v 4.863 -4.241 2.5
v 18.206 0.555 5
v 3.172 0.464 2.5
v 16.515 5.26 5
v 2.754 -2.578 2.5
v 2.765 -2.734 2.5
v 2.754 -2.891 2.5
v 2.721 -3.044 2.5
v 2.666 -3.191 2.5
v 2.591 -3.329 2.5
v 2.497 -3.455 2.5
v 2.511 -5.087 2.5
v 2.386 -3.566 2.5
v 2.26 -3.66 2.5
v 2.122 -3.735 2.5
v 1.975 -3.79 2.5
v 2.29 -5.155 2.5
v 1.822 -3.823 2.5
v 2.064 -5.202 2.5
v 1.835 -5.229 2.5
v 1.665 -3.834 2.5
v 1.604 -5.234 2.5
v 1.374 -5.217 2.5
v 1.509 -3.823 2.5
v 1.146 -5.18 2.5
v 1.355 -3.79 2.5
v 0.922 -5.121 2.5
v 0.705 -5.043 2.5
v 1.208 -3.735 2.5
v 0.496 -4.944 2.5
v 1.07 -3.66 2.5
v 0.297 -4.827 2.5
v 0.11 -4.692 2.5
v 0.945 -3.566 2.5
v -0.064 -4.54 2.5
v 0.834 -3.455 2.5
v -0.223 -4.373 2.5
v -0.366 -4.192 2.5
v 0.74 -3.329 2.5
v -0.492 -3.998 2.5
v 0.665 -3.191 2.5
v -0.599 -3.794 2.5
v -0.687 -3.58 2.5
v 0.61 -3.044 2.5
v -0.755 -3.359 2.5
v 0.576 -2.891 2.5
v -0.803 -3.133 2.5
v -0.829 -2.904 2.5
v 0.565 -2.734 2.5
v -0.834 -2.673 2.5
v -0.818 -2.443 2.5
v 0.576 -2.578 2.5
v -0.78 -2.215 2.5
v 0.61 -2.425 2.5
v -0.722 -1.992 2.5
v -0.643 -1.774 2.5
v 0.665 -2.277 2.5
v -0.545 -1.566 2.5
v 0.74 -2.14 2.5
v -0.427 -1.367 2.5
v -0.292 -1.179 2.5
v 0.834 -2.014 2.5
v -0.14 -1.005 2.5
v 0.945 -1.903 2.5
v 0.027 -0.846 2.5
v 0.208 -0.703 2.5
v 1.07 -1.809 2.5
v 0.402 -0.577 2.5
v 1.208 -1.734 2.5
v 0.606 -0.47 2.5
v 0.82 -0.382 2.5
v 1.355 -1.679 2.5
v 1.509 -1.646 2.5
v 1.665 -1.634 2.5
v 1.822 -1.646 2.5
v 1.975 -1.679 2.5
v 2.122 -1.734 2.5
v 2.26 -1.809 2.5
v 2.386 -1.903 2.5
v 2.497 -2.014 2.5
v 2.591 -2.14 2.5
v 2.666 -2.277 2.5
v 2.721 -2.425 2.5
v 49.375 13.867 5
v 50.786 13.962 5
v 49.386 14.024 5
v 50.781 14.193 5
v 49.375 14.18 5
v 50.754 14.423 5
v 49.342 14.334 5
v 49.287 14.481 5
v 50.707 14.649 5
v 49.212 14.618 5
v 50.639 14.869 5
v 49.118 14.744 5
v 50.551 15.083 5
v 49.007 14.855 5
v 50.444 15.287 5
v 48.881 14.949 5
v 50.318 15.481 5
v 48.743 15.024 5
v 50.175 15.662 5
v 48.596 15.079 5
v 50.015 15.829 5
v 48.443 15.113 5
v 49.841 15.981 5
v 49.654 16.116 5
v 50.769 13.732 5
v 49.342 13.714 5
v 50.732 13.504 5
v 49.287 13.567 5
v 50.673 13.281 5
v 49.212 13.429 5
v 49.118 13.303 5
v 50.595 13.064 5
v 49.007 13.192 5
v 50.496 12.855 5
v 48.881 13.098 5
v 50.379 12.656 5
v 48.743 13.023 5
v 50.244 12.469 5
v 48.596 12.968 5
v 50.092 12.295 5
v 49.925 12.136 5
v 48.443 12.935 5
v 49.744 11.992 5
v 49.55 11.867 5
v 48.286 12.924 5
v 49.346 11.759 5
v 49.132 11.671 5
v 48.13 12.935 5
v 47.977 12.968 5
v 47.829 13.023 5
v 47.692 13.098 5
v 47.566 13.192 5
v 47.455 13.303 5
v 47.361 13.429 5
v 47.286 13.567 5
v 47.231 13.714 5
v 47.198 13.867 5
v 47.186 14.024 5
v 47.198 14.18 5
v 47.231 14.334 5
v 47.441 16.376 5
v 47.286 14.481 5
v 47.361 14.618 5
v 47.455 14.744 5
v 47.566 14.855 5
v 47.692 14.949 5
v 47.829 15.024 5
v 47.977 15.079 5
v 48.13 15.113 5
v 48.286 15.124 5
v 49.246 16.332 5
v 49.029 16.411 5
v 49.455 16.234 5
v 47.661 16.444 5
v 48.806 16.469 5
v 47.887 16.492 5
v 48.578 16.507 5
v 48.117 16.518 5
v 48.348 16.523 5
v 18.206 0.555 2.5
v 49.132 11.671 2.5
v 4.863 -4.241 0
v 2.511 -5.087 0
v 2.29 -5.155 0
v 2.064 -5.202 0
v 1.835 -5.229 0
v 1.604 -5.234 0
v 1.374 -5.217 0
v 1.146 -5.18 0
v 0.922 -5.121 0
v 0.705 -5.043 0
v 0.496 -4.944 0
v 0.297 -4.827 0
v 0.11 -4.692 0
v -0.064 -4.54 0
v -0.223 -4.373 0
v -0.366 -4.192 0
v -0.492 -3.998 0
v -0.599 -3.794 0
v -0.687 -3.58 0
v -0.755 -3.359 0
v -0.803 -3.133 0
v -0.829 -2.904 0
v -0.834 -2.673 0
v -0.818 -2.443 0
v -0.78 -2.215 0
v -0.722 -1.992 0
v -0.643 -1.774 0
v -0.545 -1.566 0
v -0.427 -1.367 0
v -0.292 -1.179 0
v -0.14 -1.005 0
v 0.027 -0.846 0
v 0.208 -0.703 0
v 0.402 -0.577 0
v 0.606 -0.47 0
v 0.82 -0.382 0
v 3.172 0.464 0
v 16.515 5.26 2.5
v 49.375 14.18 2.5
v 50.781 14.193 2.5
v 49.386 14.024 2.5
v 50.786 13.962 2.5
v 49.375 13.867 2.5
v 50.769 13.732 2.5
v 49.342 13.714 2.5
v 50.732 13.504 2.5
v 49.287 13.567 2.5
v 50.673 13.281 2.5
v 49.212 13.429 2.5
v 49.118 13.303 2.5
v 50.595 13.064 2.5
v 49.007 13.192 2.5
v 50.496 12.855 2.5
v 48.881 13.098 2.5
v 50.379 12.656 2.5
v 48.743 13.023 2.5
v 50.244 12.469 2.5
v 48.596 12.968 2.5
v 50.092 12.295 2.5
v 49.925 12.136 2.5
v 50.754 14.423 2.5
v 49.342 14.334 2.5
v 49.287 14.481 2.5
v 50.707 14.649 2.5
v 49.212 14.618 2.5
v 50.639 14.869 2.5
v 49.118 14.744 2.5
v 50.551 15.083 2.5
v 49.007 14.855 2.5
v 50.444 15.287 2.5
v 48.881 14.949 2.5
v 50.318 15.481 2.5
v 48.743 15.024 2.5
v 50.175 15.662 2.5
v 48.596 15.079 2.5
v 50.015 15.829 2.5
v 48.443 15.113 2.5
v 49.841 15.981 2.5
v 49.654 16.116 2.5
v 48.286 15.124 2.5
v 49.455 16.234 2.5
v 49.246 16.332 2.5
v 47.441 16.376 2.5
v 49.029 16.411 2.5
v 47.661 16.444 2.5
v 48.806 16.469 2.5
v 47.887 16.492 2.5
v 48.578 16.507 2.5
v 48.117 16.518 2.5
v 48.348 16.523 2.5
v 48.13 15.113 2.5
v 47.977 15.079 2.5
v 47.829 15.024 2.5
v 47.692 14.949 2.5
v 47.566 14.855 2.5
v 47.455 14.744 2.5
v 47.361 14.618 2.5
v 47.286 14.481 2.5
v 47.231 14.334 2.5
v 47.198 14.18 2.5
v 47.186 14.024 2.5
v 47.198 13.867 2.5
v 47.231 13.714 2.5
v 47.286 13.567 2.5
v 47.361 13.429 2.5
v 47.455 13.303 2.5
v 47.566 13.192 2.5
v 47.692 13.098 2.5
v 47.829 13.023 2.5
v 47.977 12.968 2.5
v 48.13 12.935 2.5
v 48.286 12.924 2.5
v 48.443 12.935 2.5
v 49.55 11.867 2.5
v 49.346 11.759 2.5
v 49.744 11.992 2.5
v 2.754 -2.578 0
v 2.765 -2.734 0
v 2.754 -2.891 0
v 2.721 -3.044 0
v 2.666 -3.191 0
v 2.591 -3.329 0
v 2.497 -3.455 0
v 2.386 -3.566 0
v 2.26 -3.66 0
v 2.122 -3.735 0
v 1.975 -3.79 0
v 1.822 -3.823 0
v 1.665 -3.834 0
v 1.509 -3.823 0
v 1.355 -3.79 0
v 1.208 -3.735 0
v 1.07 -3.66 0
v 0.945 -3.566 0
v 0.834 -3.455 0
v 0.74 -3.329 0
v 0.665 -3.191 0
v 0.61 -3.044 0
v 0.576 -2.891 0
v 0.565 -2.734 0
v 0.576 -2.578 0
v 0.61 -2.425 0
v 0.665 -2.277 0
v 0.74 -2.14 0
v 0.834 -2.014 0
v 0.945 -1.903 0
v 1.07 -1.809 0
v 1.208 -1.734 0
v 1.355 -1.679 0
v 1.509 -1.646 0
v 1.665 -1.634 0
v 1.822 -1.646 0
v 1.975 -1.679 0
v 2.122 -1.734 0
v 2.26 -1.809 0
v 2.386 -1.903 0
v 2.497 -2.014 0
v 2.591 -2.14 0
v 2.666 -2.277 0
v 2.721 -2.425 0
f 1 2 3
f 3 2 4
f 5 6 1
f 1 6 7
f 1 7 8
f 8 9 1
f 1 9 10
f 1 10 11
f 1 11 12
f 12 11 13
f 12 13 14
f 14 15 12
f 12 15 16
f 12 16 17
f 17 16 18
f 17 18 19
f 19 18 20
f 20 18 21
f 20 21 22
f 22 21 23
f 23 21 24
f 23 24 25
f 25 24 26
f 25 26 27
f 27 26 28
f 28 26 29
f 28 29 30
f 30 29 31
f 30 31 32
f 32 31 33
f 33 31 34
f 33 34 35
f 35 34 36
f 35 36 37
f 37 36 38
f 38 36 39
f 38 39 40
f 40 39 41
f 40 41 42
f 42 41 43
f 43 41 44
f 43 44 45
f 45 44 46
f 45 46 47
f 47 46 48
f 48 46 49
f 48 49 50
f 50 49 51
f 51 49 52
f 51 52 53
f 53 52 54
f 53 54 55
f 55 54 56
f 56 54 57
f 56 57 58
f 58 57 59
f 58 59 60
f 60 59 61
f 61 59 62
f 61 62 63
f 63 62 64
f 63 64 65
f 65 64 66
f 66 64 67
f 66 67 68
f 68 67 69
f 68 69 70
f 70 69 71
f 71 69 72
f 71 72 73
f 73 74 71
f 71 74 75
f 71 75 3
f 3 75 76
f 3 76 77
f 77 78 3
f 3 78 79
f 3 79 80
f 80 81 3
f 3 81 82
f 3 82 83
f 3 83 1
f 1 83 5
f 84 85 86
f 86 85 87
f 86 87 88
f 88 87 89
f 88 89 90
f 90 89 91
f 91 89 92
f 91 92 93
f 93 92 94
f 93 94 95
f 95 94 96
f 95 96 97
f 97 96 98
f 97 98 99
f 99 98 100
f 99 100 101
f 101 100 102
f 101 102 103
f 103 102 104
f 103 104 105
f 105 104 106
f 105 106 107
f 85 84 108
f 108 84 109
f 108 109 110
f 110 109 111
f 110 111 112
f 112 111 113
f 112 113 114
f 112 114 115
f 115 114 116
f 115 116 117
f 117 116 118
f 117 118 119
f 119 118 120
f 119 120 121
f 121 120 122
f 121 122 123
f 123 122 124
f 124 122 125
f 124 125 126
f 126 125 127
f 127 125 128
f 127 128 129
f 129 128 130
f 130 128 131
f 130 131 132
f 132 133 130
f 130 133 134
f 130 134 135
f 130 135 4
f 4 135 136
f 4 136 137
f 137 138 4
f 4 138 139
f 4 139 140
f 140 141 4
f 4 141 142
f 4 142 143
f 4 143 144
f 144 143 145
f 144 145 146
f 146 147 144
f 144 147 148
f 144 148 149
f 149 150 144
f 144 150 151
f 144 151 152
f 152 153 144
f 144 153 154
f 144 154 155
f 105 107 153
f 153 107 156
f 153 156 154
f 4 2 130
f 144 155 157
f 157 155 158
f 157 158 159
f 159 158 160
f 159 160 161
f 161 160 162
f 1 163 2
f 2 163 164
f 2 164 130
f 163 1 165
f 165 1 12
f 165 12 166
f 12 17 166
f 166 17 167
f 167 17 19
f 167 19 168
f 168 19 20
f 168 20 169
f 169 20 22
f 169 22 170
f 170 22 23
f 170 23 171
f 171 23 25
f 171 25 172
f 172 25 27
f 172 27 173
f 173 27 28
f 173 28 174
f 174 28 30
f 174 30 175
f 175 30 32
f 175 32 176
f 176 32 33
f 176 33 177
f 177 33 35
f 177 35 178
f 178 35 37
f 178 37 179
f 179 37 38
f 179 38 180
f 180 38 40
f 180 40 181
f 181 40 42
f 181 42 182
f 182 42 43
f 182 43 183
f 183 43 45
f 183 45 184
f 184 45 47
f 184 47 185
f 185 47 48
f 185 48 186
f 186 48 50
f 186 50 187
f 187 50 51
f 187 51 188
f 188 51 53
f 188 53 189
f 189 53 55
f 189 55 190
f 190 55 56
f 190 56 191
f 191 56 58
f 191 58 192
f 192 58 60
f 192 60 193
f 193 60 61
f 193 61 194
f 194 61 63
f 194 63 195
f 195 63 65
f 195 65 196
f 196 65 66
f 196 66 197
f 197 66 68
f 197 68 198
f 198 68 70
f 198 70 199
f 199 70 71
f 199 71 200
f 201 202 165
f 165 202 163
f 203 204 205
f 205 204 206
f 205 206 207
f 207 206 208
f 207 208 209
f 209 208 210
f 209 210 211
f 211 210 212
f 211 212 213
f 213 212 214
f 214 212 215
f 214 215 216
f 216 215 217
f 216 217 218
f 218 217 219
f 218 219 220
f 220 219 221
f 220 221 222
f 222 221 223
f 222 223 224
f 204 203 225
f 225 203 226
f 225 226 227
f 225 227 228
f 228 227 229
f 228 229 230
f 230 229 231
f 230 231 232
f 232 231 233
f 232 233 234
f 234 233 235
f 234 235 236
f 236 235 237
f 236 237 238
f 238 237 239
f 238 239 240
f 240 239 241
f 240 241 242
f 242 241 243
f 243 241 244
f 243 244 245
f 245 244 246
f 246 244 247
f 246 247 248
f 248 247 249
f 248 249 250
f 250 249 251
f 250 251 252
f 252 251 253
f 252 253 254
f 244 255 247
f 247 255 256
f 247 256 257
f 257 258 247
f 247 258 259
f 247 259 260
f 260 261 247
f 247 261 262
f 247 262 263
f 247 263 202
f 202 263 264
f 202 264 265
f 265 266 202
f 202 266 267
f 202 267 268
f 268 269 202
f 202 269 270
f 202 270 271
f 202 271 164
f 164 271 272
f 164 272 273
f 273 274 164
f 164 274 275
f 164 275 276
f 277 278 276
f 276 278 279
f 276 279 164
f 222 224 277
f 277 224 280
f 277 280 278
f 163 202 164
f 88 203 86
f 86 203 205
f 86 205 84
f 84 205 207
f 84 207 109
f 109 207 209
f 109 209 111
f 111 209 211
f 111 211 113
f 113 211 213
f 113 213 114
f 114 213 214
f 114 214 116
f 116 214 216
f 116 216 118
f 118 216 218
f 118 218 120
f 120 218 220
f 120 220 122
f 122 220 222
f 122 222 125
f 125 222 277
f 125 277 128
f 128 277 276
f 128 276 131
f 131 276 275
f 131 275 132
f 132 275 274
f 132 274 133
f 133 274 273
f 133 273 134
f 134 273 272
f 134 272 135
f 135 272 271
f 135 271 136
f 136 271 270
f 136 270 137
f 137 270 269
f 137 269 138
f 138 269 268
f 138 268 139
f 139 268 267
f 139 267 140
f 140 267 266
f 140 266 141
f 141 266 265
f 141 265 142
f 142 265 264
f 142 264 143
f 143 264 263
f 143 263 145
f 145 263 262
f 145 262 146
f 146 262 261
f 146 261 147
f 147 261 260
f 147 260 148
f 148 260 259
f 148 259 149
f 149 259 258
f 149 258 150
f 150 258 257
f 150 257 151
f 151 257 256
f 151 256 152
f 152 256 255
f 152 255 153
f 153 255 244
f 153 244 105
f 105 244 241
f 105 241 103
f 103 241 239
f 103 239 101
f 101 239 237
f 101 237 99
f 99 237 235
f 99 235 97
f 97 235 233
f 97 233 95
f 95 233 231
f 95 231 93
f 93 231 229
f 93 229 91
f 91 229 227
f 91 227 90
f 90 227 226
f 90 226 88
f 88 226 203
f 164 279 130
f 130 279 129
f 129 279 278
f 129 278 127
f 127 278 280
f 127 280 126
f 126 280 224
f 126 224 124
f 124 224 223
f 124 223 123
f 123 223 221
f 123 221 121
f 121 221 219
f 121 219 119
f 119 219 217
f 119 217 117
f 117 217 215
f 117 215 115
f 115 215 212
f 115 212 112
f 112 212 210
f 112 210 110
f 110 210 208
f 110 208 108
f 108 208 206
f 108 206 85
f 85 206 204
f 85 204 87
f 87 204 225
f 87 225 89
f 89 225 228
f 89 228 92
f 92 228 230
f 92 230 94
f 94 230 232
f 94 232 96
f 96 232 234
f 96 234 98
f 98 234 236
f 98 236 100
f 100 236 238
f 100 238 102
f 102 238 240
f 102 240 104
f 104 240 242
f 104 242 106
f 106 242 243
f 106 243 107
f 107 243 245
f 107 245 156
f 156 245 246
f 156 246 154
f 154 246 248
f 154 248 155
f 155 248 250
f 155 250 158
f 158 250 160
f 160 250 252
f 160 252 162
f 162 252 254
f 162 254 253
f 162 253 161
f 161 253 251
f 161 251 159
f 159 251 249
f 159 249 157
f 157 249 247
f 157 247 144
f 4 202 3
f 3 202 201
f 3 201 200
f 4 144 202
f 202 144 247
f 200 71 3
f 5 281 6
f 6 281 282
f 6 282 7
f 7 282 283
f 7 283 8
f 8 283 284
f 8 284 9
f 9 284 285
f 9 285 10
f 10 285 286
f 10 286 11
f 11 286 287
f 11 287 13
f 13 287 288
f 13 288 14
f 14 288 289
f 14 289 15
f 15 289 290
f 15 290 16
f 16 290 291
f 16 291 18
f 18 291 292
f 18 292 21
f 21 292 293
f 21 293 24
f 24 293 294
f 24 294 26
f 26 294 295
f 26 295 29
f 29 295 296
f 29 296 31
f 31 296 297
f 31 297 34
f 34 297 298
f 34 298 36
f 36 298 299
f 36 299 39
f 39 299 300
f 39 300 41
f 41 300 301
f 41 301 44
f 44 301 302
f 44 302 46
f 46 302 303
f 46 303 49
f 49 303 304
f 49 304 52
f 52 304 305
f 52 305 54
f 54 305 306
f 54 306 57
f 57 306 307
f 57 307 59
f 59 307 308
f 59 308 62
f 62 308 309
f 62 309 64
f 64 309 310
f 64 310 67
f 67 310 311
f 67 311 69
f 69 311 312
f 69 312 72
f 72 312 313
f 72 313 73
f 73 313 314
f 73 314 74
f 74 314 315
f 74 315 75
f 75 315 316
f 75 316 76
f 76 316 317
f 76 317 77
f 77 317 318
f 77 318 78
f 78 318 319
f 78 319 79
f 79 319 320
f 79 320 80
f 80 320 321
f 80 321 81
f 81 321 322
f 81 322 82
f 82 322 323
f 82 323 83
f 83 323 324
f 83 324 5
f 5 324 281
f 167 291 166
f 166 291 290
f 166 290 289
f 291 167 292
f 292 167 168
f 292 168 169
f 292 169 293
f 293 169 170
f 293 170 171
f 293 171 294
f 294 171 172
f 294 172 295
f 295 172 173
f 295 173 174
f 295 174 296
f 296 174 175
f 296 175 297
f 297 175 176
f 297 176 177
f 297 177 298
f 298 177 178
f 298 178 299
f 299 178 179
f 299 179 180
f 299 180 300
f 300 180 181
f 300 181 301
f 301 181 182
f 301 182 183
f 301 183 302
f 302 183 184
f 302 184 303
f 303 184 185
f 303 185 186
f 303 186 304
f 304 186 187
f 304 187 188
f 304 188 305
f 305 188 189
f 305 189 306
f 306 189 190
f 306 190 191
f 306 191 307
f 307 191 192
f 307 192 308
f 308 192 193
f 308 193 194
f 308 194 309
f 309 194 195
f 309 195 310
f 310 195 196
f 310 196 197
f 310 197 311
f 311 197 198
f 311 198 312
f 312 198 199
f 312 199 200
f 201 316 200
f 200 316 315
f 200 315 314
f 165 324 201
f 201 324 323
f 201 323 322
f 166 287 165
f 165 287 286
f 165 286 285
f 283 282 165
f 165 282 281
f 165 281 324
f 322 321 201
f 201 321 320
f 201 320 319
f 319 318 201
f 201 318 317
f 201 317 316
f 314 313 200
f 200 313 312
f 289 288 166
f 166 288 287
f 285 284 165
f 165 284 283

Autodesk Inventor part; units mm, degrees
ref_plane "YZ Plane" through (0, 0, 0) normal (1, 0, 0) x (0, 1, 0)
ref_plane "XZ Plane" through (0, 0, 0) normal (0, 1, 0) x (-1, 0, 0)
ref_plane "XY Plane" through (0, 0, 0) normal (0, 0, 1) x (1, 0, 0)
sketch "Sketch1" plane through (0, 0, 0) normal (0, 0, 1) x (1, 0, 0)
  circle A0 centre (1.6652, -2.7344) radius 1.1 projected
  circle A1 centre (1.6652, -2.7344) radius 2.5
  circle A2 centre (48.2864, 14.0238) radius 1.1 construction
  point P0 (0, 0)
  dimension "d0" = 5
extrude "Extrusion1" add sketch "Sketch1" along normal blind 2.5
sketch "Sketch2" plane through (1.6652, -2.7344, 2.5) normal (0, 0, 1) x (1, 0, 0)
  circle A0 centre (0, 0) radius 2.5 projected
  circle A1 centre (0, 0) radius 1.1 projected
  circle A2 centre (46.6212, 16.7582) radius 1.1 projected
  circle A3 centre (46.6212, 16.7582) radius 2.5
  circle A4 centre (0, 0) radius 2.5 projected
  line L0 (0.8457, -2.3526) -> (47.4669, 14.4056)
  line L1 (-0.8457, 2.3526) -> (45.7756, 19.1109)
  point P0 (-1.6652, 2.7344)
  point P1 (0.8457, -2.3526)
  dimension "d4" = 5
extrude "Extrusion2" add sketch "Sketch2" along normal blind 2.5
sketch "Sketch3" plane through (0.8195, -0.3818, 5) normal (-0.3382652, 0.9410508, 0) x (0.9410508, 0.3382652, 0)
  line L0 (49.5417, 2.5) -> (0, 2.5) projected
  line L1 (0, 2.5) -> (0, 0) projected
  line L2 (49.5417, 0) -> (0, 0) projected
  line L3 (49.5417, 2.5) -> (49.5417, 0) projected
  line L4 (0, 2.5) -> (0, 2.5) projected
  line L5 (0, 2.5) -> (0, 0) projected
  line L6 (0, 0) -> (0, 0) projected
  line L7 (0, 2.5) -> (0, 0) projected
  line L8 (-2.5, 5) -> (2.5, 5) projected
  line L9 (-2.5, 0) -> (0, 0) projected
  line L10 (-2.5, 5) -> (-2.5, 0) projected
  line L11 (-2.5, 5) -> (2.5, 5) projected
  line L12 (2.5, 5) -> (16.6782, 2.5)
  line L13 (0, 2.5) -> (49.5417, 2.5) projected
  line L14 (2.5, 5) -> (2.5, 2.5) projected
  line L15 (0, 0) -> (49.5417, 0) projected
  line L16 (0, 2.5) -> (2.5, 2.5) projected
  line L17 (16.6782, 0) -> (2.5, 2.5)
  point P0 (-0.6421, 5)
  point P1 (16.6782, 2.5)
  dimension "d7" = 10
extrude "Extrusion3" add sketch "Sketch3" against normal blind 5 contours L0 L14 L12
sketch "Sketch4" plane through (3.1722, 0.4639, 0) normal (-0.9410508, -0.3382652, 0) x (0, 0, 1)
  line L0 (0, -2.5) -> (2.5, -2.5) projected
  line L1 (2.5, 0) -> (2.5, -2.5) projected
  line L2 (0, 0) -> (2.5, 0) projected
  line L3 (0, 0) -> (0, -2.5) projected
  line L4 (0, -2.5) -> (0, -5) projected
  line L5 (2.5, -5) -> (0, -5) projected
  line L6 (2.5, -2.5) -> (2.5, -5) projected
  point P0 (0, 0.6365)
extrude "Extrusion4" add sketch "Sketch4" along normal up to surface
sketch "Sketch5" plane through (0.8195, -0.3818, 5) normal (-0.3382652, 0.9410508, 0) x (0.9410508, 0.3382652, 0)
  line L0 (0, 5) -> (0, 0) projected
  line L1 (0, 0) -> (0, 0) projected
  line L2 (0, 5) -> (0, 0) projected
  line L3 (0, 5) -> (0, 5) projected
  line L4 (49.5417, 2.5) -> (16.6782, 2.5) projected
  line L5 (16.6782, 2.5) -> (2.5, 5) projected
  line L6 (2.5, 5) -> (0, 5) projected
  line L7 (0, 5) -> (0, 0) projected
  line L8 (49.5417, 0) -> (0, 0) projected
  line L9 (49.5417, 2.5) -> (49.5417, 0) projected
  line L10 (-1.1, 0) -> (-1.1, 5) projected
  line L11 (-2.5, 5) -> (-2.5, 0) projected
  line L12 (-2.5, 0) -> (0, 0) projected
  line L13 (-2.5, 5) -> (0, 5) projected
  line L14 (-2.5, 2.5) -> (2.5, 2.5)
  line L15 (2.5, 2.5) -> (16.6782, 0)
  point P0 (-0.6421, 5)
extrude "Extrusion5" cut sketch "Sketch5" against normal up to next contours L14 L15 L8 L0 | L0 L12 L10 L14 | L10 L12 L11 L14
properties part number "Dedo_3"
